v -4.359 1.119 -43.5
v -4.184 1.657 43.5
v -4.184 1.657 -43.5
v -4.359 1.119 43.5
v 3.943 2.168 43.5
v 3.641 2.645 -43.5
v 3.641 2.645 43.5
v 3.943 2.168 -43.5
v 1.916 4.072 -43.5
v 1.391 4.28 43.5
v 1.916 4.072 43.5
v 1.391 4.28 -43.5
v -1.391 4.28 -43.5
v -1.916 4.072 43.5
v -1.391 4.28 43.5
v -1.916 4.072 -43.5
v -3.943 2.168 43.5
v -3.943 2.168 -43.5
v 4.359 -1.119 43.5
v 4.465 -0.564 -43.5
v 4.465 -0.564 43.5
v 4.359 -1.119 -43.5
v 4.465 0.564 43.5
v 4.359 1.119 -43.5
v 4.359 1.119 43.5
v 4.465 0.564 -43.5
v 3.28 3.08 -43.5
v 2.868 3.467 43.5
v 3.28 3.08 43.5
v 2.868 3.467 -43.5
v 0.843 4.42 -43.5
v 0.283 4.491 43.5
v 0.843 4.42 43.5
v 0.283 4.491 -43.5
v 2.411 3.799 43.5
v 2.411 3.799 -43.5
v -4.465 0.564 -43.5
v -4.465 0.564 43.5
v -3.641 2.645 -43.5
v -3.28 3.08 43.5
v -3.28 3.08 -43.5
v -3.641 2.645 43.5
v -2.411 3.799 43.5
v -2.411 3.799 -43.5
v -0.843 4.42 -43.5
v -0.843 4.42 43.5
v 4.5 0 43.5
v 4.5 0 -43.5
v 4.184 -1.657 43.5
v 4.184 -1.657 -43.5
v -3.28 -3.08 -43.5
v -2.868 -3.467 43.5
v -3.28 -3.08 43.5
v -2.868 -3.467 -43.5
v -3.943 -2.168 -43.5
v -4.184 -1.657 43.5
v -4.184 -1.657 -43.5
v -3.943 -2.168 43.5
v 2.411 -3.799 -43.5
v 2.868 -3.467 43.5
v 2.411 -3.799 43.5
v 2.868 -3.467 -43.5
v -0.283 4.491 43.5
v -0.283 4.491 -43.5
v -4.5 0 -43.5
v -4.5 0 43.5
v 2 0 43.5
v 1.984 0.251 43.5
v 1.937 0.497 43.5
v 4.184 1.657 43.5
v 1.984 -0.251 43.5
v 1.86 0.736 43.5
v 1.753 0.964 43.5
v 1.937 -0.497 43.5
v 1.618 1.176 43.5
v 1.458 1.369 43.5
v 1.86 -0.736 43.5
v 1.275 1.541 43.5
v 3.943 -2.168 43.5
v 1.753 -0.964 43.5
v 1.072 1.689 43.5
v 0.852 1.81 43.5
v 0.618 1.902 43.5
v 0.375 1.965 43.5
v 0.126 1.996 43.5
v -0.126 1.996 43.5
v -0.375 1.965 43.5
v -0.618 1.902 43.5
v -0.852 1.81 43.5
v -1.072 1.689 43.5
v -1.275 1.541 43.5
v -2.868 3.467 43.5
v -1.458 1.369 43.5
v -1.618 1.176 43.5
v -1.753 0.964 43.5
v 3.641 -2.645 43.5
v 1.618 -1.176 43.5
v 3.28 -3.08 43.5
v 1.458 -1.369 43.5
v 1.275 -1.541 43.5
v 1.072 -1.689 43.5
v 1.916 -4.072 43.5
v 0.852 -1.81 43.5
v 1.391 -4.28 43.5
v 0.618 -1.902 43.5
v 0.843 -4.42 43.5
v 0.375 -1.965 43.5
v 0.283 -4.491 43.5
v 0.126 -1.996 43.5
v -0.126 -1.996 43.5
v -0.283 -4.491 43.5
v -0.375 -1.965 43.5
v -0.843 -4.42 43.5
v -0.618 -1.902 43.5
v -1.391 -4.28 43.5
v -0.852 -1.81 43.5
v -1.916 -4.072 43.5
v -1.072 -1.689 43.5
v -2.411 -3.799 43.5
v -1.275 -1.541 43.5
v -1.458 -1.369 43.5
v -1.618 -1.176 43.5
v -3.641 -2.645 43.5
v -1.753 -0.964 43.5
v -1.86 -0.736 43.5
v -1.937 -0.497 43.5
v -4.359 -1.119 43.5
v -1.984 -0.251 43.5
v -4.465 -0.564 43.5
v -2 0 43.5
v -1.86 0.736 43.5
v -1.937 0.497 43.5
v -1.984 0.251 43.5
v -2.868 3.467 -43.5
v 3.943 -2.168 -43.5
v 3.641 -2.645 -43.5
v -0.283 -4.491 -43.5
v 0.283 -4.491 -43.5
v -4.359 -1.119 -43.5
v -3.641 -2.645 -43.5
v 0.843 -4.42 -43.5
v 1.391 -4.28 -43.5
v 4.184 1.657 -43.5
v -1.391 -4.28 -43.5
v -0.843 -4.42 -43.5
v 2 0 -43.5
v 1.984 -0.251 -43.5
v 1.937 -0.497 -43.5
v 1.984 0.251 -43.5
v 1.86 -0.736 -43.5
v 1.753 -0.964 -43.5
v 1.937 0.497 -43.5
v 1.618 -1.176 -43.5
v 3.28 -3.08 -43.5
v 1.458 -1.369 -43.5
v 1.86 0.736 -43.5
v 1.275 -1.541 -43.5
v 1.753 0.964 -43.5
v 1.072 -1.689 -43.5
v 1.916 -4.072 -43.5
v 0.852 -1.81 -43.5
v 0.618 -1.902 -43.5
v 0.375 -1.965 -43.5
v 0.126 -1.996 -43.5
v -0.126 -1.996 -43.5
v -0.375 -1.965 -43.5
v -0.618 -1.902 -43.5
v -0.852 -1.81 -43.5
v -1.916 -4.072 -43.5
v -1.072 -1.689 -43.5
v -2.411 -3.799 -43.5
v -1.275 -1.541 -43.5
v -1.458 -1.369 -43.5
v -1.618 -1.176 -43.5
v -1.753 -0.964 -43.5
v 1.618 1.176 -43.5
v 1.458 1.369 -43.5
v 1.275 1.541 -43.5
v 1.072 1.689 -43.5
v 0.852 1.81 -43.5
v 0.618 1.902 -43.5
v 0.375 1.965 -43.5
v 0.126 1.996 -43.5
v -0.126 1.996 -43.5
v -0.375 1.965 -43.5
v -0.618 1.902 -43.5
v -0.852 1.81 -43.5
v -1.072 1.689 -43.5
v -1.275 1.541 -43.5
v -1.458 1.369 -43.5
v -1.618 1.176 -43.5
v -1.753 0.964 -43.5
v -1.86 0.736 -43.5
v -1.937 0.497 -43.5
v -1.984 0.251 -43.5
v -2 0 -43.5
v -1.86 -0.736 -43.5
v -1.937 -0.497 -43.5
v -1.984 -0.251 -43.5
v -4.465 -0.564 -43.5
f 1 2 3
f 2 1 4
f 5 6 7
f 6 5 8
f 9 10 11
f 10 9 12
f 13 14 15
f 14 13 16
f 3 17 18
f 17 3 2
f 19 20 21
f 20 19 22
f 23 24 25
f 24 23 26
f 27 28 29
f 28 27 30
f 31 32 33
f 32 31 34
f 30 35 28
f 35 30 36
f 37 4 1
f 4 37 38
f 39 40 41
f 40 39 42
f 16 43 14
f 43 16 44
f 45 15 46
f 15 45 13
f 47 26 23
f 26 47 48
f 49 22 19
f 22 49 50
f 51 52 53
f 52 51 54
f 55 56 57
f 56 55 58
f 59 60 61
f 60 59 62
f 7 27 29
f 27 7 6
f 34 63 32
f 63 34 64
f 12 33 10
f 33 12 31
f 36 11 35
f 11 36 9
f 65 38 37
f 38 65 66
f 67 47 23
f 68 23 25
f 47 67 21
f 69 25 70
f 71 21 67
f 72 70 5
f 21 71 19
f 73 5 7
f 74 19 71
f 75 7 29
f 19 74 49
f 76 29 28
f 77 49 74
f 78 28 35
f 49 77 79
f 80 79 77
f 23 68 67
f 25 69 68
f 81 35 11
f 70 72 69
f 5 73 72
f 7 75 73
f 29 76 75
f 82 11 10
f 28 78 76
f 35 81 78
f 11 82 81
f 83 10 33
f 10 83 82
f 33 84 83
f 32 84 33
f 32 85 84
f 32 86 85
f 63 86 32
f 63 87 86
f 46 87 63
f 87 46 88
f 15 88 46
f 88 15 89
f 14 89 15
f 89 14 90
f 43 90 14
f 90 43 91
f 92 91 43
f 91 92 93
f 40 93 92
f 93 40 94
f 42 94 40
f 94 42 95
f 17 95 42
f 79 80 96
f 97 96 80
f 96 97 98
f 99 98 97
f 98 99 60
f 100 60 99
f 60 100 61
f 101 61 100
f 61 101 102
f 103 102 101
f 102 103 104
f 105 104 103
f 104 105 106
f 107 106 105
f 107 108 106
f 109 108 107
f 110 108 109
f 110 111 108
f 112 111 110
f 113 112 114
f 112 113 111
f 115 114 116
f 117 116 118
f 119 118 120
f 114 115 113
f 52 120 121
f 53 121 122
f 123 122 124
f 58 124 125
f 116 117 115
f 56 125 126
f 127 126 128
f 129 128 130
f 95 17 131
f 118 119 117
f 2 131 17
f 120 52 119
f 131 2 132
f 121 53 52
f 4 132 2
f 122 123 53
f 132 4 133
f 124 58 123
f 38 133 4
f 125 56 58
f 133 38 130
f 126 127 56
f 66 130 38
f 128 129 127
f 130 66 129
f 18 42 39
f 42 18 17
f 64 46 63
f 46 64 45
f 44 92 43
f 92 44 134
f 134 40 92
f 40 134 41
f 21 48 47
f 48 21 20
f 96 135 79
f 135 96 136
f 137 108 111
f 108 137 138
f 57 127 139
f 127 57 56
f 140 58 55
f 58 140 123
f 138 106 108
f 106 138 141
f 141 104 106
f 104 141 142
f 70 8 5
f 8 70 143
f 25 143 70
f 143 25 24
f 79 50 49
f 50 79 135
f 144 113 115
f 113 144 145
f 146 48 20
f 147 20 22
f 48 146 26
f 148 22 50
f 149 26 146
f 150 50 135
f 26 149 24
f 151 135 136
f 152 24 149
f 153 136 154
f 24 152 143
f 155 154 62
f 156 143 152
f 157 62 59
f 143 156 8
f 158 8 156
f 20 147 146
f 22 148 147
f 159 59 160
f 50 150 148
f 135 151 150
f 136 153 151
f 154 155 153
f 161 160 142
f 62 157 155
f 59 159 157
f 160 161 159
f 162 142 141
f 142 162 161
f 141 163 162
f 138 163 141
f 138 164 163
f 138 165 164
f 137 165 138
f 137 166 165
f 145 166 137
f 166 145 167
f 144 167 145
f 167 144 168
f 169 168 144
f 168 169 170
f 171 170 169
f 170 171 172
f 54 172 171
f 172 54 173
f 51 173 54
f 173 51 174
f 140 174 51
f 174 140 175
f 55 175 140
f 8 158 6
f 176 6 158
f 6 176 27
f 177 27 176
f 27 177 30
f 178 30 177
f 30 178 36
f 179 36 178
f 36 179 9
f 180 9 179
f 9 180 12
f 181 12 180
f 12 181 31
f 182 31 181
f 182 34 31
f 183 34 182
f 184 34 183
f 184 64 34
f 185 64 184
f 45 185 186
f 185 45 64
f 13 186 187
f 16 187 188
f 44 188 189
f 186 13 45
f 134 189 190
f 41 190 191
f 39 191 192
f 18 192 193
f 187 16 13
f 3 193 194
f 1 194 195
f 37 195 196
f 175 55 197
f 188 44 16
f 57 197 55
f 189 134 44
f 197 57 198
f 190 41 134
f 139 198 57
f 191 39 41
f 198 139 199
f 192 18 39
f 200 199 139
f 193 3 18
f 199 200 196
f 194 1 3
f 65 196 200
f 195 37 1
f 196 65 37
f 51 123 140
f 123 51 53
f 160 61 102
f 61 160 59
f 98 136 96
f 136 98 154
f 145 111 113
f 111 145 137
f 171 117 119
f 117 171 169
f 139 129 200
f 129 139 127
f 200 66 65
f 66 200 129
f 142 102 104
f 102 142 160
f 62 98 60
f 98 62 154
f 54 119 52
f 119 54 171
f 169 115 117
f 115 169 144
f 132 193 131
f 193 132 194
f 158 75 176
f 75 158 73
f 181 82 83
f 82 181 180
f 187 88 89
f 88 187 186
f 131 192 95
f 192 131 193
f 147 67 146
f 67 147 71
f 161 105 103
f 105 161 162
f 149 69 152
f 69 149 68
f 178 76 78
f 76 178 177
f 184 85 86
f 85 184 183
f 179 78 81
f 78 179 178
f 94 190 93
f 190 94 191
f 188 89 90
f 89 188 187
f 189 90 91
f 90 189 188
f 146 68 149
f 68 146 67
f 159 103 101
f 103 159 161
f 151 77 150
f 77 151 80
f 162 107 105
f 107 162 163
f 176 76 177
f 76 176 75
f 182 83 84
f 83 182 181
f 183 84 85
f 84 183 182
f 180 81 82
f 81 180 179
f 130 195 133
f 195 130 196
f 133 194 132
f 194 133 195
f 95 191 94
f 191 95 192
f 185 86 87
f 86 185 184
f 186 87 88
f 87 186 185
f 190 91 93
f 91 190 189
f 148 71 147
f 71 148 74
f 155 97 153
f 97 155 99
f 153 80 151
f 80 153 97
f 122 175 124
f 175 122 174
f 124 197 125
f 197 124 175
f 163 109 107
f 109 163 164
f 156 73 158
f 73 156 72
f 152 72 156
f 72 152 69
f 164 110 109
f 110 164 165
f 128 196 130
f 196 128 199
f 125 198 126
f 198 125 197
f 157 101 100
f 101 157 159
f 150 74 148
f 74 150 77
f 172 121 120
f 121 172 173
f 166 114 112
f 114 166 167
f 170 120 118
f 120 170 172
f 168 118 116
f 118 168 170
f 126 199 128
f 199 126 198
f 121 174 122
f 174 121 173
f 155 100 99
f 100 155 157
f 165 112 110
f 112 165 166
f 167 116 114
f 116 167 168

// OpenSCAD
$fn = 50;


difference() {
	union() {
		translate(v = [0, 0, -43.5000000000]) {
			cylinder(h = 87, r = 4.5000000000);
		}
	}
	union() {
		translate(v = [0, 0, -100.0000000000]) {
			cylinder(h = 200, r = 2);
		}
	}
}
